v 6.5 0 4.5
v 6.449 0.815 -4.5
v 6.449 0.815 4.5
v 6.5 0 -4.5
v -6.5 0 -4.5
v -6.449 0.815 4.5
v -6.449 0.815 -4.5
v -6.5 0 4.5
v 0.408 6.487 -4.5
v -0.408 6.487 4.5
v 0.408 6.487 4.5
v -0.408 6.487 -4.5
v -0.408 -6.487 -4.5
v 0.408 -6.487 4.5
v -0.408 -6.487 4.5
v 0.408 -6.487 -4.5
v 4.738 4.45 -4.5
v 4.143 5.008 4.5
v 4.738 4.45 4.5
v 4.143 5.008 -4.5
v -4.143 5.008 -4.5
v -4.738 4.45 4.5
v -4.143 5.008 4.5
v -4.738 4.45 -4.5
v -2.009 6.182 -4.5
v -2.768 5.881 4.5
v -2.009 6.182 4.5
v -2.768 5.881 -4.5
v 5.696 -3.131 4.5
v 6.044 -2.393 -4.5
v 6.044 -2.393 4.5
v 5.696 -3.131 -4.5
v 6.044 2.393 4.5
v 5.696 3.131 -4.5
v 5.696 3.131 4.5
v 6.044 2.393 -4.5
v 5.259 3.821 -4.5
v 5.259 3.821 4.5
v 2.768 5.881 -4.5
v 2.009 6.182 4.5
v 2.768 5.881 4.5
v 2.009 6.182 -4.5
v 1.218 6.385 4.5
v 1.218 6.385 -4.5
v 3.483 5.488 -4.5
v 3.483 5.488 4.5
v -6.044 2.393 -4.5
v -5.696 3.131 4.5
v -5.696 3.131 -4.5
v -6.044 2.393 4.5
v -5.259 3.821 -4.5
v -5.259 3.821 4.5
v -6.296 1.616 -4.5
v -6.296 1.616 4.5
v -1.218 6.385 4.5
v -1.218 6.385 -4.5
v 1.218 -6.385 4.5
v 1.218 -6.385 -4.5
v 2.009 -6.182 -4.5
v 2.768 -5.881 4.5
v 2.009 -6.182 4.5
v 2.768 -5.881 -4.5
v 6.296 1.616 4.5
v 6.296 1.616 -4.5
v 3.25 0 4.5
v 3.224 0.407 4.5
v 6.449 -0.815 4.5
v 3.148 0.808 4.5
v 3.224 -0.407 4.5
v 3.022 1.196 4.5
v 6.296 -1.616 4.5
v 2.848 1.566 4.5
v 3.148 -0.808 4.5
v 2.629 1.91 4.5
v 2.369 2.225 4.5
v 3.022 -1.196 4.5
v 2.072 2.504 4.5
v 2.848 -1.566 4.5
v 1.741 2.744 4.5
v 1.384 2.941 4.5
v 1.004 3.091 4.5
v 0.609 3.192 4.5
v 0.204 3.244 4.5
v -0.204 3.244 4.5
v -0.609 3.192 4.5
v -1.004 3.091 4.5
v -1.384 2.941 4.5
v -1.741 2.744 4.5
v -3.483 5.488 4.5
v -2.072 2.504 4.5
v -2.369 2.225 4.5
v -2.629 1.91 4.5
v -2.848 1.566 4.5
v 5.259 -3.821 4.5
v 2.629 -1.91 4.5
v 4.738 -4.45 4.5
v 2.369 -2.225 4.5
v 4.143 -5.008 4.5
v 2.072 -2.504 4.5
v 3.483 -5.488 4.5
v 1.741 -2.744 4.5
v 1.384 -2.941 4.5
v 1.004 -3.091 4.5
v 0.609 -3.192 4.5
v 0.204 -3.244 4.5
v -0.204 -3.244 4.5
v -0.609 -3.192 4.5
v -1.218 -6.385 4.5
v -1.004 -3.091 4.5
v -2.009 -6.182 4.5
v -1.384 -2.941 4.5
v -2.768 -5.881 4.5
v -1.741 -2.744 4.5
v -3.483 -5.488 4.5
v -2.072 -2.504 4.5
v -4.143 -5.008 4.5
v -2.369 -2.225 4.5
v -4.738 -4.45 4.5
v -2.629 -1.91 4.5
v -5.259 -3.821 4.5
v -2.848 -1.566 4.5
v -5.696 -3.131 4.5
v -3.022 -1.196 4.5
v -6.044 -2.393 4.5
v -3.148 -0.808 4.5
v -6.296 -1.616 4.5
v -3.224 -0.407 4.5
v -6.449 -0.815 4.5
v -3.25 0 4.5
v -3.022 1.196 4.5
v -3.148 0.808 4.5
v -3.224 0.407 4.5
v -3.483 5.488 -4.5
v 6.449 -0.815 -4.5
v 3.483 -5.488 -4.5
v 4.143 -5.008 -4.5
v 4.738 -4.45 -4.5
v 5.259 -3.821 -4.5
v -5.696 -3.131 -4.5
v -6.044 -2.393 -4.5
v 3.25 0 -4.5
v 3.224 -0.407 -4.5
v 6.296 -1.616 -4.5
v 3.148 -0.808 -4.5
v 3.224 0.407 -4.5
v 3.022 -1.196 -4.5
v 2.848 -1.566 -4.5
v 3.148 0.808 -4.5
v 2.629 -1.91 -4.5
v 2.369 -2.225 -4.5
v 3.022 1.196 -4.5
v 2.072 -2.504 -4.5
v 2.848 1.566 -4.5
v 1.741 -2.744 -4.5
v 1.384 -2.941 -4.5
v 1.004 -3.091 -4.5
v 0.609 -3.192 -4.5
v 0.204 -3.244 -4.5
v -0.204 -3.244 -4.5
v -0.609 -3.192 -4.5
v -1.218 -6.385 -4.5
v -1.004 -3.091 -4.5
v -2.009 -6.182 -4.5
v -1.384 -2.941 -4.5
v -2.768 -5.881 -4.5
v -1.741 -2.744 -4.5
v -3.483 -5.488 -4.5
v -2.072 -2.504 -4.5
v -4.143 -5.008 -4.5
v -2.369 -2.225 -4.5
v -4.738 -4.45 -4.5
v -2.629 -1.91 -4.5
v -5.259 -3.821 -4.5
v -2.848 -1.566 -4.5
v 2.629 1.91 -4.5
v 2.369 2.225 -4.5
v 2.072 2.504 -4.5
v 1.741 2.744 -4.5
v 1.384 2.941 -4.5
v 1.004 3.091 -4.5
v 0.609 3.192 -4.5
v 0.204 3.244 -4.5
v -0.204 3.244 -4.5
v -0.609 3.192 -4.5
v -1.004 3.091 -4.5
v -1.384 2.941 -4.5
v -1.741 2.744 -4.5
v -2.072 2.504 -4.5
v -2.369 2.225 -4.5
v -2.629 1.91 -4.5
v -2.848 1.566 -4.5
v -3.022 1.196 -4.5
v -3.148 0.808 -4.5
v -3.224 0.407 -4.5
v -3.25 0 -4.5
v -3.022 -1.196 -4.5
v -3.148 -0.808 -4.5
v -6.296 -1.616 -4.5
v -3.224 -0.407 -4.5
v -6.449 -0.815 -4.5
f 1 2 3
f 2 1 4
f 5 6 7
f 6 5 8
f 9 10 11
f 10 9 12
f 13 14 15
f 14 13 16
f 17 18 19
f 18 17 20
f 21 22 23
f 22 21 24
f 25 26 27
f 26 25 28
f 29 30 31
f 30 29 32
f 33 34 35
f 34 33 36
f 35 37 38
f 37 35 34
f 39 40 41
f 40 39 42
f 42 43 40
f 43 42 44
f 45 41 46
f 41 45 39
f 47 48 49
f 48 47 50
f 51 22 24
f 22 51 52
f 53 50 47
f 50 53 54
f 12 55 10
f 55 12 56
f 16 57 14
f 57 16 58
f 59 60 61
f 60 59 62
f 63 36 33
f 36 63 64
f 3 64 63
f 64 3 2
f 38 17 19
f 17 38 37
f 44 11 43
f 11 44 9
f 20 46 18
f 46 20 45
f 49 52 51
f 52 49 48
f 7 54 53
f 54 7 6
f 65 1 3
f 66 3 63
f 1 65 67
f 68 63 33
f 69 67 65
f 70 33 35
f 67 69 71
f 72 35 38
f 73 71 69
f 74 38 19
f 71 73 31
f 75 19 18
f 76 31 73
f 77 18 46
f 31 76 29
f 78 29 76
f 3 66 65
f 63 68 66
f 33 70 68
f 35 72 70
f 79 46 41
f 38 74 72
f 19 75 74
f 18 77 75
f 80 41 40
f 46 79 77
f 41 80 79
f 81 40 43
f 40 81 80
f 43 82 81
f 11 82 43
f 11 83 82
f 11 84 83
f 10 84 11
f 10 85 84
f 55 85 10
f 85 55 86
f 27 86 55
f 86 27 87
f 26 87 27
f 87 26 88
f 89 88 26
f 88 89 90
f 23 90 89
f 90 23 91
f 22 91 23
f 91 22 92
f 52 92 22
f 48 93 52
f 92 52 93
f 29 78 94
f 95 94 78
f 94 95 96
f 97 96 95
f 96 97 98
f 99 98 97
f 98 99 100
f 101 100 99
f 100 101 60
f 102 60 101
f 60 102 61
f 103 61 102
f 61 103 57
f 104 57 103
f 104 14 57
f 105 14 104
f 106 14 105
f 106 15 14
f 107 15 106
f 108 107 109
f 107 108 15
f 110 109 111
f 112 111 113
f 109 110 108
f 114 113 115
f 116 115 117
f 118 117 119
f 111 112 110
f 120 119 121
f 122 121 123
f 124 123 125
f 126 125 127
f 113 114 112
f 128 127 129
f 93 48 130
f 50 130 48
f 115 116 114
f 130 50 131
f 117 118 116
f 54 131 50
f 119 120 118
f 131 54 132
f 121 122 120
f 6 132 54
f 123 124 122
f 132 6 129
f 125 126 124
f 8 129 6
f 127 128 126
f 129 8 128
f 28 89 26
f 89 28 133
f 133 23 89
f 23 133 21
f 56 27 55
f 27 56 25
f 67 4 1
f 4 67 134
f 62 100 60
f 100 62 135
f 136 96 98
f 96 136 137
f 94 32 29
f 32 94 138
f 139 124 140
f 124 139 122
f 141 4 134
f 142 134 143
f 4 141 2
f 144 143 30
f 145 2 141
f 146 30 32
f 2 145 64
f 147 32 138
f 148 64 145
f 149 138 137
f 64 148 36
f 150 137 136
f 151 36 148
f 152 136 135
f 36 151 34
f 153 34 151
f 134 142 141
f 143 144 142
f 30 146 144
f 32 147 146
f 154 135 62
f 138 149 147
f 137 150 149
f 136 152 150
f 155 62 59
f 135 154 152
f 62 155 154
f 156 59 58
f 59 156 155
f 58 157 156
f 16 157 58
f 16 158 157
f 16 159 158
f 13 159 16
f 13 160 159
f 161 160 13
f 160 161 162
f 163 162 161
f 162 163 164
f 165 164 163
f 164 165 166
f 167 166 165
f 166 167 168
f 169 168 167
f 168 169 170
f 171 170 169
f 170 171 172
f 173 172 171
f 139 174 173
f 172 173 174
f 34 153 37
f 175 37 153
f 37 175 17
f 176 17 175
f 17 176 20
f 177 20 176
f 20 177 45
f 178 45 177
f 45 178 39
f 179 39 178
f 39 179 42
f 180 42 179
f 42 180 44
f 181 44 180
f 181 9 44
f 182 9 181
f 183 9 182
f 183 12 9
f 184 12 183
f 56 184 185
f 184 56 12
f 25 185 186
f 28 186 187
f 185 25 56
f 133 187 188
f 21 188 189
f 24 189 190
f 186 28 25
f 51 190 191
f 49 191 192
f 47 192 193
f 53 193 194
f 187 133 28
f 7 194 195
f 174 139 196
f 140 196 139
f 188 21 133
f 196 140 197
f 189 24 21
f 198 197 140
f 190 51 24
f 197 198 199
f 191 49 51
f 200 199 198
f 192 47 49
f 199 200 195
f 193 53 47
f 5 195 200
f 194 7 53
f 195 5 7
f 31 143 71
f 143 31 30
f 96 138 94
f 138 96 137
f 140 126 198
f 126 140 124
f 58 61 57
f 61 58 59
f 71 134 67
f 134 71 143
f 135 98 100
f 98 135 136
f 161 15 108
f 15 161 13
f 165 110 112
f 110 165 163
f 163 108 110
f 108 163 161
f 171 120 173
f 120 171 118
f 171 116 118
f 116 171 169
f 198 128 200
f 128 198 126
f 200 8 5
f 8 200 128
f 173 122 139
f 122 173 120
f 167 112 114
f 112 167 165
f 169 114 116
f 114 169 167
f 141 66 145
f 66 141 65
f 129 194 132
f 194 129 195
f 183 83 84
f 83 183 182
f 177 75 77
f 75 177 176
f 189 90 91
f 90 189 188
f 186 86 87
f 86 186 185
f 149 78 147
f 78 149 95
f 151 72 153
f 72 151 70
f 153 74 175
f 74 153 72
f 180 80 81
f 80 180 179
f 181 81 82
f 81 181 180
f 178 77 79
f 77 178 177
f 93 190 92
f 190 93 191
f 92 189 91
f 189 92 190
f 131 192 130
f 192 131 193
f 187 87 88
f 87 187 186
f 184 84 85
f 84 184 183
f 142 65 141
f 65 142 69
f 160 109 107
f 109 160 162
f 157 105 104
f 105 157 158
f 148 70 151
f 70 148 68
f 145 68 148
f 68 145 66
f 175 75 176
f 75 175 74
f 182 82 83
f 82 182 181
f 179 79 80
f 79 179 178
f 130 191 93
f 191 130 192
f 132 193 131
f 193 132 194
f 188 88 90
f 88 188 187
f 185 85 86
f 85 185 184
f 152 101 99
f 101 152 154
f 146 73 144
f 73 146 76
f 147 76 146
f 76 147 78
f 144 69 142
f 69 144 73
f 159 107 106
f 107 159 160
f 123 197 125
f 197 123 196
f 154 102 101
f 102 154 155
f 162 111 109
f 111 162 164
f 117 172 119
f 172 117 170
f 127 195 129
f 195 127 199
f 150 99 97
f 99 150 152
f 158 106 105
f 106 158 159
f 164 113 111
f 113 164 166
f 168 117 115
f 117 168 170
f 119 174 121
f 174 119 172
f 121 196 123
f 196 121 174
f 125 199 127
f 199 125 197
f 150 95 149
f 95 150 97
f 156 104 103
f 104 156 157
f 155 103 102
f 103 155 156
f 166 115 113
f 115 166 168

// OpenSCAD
$fn = 50;


difference() {
	union() {
		translate(v = [0, 0, -4.5000000000]) {
			cylinder(h = 9, r = 6.5000000000);
		}
	}
	union() {
		translate(v = [0, 0, -100.0000000000]) {
			cylinder(h = 200, r = 3.2500000000);
		}
	}
}
